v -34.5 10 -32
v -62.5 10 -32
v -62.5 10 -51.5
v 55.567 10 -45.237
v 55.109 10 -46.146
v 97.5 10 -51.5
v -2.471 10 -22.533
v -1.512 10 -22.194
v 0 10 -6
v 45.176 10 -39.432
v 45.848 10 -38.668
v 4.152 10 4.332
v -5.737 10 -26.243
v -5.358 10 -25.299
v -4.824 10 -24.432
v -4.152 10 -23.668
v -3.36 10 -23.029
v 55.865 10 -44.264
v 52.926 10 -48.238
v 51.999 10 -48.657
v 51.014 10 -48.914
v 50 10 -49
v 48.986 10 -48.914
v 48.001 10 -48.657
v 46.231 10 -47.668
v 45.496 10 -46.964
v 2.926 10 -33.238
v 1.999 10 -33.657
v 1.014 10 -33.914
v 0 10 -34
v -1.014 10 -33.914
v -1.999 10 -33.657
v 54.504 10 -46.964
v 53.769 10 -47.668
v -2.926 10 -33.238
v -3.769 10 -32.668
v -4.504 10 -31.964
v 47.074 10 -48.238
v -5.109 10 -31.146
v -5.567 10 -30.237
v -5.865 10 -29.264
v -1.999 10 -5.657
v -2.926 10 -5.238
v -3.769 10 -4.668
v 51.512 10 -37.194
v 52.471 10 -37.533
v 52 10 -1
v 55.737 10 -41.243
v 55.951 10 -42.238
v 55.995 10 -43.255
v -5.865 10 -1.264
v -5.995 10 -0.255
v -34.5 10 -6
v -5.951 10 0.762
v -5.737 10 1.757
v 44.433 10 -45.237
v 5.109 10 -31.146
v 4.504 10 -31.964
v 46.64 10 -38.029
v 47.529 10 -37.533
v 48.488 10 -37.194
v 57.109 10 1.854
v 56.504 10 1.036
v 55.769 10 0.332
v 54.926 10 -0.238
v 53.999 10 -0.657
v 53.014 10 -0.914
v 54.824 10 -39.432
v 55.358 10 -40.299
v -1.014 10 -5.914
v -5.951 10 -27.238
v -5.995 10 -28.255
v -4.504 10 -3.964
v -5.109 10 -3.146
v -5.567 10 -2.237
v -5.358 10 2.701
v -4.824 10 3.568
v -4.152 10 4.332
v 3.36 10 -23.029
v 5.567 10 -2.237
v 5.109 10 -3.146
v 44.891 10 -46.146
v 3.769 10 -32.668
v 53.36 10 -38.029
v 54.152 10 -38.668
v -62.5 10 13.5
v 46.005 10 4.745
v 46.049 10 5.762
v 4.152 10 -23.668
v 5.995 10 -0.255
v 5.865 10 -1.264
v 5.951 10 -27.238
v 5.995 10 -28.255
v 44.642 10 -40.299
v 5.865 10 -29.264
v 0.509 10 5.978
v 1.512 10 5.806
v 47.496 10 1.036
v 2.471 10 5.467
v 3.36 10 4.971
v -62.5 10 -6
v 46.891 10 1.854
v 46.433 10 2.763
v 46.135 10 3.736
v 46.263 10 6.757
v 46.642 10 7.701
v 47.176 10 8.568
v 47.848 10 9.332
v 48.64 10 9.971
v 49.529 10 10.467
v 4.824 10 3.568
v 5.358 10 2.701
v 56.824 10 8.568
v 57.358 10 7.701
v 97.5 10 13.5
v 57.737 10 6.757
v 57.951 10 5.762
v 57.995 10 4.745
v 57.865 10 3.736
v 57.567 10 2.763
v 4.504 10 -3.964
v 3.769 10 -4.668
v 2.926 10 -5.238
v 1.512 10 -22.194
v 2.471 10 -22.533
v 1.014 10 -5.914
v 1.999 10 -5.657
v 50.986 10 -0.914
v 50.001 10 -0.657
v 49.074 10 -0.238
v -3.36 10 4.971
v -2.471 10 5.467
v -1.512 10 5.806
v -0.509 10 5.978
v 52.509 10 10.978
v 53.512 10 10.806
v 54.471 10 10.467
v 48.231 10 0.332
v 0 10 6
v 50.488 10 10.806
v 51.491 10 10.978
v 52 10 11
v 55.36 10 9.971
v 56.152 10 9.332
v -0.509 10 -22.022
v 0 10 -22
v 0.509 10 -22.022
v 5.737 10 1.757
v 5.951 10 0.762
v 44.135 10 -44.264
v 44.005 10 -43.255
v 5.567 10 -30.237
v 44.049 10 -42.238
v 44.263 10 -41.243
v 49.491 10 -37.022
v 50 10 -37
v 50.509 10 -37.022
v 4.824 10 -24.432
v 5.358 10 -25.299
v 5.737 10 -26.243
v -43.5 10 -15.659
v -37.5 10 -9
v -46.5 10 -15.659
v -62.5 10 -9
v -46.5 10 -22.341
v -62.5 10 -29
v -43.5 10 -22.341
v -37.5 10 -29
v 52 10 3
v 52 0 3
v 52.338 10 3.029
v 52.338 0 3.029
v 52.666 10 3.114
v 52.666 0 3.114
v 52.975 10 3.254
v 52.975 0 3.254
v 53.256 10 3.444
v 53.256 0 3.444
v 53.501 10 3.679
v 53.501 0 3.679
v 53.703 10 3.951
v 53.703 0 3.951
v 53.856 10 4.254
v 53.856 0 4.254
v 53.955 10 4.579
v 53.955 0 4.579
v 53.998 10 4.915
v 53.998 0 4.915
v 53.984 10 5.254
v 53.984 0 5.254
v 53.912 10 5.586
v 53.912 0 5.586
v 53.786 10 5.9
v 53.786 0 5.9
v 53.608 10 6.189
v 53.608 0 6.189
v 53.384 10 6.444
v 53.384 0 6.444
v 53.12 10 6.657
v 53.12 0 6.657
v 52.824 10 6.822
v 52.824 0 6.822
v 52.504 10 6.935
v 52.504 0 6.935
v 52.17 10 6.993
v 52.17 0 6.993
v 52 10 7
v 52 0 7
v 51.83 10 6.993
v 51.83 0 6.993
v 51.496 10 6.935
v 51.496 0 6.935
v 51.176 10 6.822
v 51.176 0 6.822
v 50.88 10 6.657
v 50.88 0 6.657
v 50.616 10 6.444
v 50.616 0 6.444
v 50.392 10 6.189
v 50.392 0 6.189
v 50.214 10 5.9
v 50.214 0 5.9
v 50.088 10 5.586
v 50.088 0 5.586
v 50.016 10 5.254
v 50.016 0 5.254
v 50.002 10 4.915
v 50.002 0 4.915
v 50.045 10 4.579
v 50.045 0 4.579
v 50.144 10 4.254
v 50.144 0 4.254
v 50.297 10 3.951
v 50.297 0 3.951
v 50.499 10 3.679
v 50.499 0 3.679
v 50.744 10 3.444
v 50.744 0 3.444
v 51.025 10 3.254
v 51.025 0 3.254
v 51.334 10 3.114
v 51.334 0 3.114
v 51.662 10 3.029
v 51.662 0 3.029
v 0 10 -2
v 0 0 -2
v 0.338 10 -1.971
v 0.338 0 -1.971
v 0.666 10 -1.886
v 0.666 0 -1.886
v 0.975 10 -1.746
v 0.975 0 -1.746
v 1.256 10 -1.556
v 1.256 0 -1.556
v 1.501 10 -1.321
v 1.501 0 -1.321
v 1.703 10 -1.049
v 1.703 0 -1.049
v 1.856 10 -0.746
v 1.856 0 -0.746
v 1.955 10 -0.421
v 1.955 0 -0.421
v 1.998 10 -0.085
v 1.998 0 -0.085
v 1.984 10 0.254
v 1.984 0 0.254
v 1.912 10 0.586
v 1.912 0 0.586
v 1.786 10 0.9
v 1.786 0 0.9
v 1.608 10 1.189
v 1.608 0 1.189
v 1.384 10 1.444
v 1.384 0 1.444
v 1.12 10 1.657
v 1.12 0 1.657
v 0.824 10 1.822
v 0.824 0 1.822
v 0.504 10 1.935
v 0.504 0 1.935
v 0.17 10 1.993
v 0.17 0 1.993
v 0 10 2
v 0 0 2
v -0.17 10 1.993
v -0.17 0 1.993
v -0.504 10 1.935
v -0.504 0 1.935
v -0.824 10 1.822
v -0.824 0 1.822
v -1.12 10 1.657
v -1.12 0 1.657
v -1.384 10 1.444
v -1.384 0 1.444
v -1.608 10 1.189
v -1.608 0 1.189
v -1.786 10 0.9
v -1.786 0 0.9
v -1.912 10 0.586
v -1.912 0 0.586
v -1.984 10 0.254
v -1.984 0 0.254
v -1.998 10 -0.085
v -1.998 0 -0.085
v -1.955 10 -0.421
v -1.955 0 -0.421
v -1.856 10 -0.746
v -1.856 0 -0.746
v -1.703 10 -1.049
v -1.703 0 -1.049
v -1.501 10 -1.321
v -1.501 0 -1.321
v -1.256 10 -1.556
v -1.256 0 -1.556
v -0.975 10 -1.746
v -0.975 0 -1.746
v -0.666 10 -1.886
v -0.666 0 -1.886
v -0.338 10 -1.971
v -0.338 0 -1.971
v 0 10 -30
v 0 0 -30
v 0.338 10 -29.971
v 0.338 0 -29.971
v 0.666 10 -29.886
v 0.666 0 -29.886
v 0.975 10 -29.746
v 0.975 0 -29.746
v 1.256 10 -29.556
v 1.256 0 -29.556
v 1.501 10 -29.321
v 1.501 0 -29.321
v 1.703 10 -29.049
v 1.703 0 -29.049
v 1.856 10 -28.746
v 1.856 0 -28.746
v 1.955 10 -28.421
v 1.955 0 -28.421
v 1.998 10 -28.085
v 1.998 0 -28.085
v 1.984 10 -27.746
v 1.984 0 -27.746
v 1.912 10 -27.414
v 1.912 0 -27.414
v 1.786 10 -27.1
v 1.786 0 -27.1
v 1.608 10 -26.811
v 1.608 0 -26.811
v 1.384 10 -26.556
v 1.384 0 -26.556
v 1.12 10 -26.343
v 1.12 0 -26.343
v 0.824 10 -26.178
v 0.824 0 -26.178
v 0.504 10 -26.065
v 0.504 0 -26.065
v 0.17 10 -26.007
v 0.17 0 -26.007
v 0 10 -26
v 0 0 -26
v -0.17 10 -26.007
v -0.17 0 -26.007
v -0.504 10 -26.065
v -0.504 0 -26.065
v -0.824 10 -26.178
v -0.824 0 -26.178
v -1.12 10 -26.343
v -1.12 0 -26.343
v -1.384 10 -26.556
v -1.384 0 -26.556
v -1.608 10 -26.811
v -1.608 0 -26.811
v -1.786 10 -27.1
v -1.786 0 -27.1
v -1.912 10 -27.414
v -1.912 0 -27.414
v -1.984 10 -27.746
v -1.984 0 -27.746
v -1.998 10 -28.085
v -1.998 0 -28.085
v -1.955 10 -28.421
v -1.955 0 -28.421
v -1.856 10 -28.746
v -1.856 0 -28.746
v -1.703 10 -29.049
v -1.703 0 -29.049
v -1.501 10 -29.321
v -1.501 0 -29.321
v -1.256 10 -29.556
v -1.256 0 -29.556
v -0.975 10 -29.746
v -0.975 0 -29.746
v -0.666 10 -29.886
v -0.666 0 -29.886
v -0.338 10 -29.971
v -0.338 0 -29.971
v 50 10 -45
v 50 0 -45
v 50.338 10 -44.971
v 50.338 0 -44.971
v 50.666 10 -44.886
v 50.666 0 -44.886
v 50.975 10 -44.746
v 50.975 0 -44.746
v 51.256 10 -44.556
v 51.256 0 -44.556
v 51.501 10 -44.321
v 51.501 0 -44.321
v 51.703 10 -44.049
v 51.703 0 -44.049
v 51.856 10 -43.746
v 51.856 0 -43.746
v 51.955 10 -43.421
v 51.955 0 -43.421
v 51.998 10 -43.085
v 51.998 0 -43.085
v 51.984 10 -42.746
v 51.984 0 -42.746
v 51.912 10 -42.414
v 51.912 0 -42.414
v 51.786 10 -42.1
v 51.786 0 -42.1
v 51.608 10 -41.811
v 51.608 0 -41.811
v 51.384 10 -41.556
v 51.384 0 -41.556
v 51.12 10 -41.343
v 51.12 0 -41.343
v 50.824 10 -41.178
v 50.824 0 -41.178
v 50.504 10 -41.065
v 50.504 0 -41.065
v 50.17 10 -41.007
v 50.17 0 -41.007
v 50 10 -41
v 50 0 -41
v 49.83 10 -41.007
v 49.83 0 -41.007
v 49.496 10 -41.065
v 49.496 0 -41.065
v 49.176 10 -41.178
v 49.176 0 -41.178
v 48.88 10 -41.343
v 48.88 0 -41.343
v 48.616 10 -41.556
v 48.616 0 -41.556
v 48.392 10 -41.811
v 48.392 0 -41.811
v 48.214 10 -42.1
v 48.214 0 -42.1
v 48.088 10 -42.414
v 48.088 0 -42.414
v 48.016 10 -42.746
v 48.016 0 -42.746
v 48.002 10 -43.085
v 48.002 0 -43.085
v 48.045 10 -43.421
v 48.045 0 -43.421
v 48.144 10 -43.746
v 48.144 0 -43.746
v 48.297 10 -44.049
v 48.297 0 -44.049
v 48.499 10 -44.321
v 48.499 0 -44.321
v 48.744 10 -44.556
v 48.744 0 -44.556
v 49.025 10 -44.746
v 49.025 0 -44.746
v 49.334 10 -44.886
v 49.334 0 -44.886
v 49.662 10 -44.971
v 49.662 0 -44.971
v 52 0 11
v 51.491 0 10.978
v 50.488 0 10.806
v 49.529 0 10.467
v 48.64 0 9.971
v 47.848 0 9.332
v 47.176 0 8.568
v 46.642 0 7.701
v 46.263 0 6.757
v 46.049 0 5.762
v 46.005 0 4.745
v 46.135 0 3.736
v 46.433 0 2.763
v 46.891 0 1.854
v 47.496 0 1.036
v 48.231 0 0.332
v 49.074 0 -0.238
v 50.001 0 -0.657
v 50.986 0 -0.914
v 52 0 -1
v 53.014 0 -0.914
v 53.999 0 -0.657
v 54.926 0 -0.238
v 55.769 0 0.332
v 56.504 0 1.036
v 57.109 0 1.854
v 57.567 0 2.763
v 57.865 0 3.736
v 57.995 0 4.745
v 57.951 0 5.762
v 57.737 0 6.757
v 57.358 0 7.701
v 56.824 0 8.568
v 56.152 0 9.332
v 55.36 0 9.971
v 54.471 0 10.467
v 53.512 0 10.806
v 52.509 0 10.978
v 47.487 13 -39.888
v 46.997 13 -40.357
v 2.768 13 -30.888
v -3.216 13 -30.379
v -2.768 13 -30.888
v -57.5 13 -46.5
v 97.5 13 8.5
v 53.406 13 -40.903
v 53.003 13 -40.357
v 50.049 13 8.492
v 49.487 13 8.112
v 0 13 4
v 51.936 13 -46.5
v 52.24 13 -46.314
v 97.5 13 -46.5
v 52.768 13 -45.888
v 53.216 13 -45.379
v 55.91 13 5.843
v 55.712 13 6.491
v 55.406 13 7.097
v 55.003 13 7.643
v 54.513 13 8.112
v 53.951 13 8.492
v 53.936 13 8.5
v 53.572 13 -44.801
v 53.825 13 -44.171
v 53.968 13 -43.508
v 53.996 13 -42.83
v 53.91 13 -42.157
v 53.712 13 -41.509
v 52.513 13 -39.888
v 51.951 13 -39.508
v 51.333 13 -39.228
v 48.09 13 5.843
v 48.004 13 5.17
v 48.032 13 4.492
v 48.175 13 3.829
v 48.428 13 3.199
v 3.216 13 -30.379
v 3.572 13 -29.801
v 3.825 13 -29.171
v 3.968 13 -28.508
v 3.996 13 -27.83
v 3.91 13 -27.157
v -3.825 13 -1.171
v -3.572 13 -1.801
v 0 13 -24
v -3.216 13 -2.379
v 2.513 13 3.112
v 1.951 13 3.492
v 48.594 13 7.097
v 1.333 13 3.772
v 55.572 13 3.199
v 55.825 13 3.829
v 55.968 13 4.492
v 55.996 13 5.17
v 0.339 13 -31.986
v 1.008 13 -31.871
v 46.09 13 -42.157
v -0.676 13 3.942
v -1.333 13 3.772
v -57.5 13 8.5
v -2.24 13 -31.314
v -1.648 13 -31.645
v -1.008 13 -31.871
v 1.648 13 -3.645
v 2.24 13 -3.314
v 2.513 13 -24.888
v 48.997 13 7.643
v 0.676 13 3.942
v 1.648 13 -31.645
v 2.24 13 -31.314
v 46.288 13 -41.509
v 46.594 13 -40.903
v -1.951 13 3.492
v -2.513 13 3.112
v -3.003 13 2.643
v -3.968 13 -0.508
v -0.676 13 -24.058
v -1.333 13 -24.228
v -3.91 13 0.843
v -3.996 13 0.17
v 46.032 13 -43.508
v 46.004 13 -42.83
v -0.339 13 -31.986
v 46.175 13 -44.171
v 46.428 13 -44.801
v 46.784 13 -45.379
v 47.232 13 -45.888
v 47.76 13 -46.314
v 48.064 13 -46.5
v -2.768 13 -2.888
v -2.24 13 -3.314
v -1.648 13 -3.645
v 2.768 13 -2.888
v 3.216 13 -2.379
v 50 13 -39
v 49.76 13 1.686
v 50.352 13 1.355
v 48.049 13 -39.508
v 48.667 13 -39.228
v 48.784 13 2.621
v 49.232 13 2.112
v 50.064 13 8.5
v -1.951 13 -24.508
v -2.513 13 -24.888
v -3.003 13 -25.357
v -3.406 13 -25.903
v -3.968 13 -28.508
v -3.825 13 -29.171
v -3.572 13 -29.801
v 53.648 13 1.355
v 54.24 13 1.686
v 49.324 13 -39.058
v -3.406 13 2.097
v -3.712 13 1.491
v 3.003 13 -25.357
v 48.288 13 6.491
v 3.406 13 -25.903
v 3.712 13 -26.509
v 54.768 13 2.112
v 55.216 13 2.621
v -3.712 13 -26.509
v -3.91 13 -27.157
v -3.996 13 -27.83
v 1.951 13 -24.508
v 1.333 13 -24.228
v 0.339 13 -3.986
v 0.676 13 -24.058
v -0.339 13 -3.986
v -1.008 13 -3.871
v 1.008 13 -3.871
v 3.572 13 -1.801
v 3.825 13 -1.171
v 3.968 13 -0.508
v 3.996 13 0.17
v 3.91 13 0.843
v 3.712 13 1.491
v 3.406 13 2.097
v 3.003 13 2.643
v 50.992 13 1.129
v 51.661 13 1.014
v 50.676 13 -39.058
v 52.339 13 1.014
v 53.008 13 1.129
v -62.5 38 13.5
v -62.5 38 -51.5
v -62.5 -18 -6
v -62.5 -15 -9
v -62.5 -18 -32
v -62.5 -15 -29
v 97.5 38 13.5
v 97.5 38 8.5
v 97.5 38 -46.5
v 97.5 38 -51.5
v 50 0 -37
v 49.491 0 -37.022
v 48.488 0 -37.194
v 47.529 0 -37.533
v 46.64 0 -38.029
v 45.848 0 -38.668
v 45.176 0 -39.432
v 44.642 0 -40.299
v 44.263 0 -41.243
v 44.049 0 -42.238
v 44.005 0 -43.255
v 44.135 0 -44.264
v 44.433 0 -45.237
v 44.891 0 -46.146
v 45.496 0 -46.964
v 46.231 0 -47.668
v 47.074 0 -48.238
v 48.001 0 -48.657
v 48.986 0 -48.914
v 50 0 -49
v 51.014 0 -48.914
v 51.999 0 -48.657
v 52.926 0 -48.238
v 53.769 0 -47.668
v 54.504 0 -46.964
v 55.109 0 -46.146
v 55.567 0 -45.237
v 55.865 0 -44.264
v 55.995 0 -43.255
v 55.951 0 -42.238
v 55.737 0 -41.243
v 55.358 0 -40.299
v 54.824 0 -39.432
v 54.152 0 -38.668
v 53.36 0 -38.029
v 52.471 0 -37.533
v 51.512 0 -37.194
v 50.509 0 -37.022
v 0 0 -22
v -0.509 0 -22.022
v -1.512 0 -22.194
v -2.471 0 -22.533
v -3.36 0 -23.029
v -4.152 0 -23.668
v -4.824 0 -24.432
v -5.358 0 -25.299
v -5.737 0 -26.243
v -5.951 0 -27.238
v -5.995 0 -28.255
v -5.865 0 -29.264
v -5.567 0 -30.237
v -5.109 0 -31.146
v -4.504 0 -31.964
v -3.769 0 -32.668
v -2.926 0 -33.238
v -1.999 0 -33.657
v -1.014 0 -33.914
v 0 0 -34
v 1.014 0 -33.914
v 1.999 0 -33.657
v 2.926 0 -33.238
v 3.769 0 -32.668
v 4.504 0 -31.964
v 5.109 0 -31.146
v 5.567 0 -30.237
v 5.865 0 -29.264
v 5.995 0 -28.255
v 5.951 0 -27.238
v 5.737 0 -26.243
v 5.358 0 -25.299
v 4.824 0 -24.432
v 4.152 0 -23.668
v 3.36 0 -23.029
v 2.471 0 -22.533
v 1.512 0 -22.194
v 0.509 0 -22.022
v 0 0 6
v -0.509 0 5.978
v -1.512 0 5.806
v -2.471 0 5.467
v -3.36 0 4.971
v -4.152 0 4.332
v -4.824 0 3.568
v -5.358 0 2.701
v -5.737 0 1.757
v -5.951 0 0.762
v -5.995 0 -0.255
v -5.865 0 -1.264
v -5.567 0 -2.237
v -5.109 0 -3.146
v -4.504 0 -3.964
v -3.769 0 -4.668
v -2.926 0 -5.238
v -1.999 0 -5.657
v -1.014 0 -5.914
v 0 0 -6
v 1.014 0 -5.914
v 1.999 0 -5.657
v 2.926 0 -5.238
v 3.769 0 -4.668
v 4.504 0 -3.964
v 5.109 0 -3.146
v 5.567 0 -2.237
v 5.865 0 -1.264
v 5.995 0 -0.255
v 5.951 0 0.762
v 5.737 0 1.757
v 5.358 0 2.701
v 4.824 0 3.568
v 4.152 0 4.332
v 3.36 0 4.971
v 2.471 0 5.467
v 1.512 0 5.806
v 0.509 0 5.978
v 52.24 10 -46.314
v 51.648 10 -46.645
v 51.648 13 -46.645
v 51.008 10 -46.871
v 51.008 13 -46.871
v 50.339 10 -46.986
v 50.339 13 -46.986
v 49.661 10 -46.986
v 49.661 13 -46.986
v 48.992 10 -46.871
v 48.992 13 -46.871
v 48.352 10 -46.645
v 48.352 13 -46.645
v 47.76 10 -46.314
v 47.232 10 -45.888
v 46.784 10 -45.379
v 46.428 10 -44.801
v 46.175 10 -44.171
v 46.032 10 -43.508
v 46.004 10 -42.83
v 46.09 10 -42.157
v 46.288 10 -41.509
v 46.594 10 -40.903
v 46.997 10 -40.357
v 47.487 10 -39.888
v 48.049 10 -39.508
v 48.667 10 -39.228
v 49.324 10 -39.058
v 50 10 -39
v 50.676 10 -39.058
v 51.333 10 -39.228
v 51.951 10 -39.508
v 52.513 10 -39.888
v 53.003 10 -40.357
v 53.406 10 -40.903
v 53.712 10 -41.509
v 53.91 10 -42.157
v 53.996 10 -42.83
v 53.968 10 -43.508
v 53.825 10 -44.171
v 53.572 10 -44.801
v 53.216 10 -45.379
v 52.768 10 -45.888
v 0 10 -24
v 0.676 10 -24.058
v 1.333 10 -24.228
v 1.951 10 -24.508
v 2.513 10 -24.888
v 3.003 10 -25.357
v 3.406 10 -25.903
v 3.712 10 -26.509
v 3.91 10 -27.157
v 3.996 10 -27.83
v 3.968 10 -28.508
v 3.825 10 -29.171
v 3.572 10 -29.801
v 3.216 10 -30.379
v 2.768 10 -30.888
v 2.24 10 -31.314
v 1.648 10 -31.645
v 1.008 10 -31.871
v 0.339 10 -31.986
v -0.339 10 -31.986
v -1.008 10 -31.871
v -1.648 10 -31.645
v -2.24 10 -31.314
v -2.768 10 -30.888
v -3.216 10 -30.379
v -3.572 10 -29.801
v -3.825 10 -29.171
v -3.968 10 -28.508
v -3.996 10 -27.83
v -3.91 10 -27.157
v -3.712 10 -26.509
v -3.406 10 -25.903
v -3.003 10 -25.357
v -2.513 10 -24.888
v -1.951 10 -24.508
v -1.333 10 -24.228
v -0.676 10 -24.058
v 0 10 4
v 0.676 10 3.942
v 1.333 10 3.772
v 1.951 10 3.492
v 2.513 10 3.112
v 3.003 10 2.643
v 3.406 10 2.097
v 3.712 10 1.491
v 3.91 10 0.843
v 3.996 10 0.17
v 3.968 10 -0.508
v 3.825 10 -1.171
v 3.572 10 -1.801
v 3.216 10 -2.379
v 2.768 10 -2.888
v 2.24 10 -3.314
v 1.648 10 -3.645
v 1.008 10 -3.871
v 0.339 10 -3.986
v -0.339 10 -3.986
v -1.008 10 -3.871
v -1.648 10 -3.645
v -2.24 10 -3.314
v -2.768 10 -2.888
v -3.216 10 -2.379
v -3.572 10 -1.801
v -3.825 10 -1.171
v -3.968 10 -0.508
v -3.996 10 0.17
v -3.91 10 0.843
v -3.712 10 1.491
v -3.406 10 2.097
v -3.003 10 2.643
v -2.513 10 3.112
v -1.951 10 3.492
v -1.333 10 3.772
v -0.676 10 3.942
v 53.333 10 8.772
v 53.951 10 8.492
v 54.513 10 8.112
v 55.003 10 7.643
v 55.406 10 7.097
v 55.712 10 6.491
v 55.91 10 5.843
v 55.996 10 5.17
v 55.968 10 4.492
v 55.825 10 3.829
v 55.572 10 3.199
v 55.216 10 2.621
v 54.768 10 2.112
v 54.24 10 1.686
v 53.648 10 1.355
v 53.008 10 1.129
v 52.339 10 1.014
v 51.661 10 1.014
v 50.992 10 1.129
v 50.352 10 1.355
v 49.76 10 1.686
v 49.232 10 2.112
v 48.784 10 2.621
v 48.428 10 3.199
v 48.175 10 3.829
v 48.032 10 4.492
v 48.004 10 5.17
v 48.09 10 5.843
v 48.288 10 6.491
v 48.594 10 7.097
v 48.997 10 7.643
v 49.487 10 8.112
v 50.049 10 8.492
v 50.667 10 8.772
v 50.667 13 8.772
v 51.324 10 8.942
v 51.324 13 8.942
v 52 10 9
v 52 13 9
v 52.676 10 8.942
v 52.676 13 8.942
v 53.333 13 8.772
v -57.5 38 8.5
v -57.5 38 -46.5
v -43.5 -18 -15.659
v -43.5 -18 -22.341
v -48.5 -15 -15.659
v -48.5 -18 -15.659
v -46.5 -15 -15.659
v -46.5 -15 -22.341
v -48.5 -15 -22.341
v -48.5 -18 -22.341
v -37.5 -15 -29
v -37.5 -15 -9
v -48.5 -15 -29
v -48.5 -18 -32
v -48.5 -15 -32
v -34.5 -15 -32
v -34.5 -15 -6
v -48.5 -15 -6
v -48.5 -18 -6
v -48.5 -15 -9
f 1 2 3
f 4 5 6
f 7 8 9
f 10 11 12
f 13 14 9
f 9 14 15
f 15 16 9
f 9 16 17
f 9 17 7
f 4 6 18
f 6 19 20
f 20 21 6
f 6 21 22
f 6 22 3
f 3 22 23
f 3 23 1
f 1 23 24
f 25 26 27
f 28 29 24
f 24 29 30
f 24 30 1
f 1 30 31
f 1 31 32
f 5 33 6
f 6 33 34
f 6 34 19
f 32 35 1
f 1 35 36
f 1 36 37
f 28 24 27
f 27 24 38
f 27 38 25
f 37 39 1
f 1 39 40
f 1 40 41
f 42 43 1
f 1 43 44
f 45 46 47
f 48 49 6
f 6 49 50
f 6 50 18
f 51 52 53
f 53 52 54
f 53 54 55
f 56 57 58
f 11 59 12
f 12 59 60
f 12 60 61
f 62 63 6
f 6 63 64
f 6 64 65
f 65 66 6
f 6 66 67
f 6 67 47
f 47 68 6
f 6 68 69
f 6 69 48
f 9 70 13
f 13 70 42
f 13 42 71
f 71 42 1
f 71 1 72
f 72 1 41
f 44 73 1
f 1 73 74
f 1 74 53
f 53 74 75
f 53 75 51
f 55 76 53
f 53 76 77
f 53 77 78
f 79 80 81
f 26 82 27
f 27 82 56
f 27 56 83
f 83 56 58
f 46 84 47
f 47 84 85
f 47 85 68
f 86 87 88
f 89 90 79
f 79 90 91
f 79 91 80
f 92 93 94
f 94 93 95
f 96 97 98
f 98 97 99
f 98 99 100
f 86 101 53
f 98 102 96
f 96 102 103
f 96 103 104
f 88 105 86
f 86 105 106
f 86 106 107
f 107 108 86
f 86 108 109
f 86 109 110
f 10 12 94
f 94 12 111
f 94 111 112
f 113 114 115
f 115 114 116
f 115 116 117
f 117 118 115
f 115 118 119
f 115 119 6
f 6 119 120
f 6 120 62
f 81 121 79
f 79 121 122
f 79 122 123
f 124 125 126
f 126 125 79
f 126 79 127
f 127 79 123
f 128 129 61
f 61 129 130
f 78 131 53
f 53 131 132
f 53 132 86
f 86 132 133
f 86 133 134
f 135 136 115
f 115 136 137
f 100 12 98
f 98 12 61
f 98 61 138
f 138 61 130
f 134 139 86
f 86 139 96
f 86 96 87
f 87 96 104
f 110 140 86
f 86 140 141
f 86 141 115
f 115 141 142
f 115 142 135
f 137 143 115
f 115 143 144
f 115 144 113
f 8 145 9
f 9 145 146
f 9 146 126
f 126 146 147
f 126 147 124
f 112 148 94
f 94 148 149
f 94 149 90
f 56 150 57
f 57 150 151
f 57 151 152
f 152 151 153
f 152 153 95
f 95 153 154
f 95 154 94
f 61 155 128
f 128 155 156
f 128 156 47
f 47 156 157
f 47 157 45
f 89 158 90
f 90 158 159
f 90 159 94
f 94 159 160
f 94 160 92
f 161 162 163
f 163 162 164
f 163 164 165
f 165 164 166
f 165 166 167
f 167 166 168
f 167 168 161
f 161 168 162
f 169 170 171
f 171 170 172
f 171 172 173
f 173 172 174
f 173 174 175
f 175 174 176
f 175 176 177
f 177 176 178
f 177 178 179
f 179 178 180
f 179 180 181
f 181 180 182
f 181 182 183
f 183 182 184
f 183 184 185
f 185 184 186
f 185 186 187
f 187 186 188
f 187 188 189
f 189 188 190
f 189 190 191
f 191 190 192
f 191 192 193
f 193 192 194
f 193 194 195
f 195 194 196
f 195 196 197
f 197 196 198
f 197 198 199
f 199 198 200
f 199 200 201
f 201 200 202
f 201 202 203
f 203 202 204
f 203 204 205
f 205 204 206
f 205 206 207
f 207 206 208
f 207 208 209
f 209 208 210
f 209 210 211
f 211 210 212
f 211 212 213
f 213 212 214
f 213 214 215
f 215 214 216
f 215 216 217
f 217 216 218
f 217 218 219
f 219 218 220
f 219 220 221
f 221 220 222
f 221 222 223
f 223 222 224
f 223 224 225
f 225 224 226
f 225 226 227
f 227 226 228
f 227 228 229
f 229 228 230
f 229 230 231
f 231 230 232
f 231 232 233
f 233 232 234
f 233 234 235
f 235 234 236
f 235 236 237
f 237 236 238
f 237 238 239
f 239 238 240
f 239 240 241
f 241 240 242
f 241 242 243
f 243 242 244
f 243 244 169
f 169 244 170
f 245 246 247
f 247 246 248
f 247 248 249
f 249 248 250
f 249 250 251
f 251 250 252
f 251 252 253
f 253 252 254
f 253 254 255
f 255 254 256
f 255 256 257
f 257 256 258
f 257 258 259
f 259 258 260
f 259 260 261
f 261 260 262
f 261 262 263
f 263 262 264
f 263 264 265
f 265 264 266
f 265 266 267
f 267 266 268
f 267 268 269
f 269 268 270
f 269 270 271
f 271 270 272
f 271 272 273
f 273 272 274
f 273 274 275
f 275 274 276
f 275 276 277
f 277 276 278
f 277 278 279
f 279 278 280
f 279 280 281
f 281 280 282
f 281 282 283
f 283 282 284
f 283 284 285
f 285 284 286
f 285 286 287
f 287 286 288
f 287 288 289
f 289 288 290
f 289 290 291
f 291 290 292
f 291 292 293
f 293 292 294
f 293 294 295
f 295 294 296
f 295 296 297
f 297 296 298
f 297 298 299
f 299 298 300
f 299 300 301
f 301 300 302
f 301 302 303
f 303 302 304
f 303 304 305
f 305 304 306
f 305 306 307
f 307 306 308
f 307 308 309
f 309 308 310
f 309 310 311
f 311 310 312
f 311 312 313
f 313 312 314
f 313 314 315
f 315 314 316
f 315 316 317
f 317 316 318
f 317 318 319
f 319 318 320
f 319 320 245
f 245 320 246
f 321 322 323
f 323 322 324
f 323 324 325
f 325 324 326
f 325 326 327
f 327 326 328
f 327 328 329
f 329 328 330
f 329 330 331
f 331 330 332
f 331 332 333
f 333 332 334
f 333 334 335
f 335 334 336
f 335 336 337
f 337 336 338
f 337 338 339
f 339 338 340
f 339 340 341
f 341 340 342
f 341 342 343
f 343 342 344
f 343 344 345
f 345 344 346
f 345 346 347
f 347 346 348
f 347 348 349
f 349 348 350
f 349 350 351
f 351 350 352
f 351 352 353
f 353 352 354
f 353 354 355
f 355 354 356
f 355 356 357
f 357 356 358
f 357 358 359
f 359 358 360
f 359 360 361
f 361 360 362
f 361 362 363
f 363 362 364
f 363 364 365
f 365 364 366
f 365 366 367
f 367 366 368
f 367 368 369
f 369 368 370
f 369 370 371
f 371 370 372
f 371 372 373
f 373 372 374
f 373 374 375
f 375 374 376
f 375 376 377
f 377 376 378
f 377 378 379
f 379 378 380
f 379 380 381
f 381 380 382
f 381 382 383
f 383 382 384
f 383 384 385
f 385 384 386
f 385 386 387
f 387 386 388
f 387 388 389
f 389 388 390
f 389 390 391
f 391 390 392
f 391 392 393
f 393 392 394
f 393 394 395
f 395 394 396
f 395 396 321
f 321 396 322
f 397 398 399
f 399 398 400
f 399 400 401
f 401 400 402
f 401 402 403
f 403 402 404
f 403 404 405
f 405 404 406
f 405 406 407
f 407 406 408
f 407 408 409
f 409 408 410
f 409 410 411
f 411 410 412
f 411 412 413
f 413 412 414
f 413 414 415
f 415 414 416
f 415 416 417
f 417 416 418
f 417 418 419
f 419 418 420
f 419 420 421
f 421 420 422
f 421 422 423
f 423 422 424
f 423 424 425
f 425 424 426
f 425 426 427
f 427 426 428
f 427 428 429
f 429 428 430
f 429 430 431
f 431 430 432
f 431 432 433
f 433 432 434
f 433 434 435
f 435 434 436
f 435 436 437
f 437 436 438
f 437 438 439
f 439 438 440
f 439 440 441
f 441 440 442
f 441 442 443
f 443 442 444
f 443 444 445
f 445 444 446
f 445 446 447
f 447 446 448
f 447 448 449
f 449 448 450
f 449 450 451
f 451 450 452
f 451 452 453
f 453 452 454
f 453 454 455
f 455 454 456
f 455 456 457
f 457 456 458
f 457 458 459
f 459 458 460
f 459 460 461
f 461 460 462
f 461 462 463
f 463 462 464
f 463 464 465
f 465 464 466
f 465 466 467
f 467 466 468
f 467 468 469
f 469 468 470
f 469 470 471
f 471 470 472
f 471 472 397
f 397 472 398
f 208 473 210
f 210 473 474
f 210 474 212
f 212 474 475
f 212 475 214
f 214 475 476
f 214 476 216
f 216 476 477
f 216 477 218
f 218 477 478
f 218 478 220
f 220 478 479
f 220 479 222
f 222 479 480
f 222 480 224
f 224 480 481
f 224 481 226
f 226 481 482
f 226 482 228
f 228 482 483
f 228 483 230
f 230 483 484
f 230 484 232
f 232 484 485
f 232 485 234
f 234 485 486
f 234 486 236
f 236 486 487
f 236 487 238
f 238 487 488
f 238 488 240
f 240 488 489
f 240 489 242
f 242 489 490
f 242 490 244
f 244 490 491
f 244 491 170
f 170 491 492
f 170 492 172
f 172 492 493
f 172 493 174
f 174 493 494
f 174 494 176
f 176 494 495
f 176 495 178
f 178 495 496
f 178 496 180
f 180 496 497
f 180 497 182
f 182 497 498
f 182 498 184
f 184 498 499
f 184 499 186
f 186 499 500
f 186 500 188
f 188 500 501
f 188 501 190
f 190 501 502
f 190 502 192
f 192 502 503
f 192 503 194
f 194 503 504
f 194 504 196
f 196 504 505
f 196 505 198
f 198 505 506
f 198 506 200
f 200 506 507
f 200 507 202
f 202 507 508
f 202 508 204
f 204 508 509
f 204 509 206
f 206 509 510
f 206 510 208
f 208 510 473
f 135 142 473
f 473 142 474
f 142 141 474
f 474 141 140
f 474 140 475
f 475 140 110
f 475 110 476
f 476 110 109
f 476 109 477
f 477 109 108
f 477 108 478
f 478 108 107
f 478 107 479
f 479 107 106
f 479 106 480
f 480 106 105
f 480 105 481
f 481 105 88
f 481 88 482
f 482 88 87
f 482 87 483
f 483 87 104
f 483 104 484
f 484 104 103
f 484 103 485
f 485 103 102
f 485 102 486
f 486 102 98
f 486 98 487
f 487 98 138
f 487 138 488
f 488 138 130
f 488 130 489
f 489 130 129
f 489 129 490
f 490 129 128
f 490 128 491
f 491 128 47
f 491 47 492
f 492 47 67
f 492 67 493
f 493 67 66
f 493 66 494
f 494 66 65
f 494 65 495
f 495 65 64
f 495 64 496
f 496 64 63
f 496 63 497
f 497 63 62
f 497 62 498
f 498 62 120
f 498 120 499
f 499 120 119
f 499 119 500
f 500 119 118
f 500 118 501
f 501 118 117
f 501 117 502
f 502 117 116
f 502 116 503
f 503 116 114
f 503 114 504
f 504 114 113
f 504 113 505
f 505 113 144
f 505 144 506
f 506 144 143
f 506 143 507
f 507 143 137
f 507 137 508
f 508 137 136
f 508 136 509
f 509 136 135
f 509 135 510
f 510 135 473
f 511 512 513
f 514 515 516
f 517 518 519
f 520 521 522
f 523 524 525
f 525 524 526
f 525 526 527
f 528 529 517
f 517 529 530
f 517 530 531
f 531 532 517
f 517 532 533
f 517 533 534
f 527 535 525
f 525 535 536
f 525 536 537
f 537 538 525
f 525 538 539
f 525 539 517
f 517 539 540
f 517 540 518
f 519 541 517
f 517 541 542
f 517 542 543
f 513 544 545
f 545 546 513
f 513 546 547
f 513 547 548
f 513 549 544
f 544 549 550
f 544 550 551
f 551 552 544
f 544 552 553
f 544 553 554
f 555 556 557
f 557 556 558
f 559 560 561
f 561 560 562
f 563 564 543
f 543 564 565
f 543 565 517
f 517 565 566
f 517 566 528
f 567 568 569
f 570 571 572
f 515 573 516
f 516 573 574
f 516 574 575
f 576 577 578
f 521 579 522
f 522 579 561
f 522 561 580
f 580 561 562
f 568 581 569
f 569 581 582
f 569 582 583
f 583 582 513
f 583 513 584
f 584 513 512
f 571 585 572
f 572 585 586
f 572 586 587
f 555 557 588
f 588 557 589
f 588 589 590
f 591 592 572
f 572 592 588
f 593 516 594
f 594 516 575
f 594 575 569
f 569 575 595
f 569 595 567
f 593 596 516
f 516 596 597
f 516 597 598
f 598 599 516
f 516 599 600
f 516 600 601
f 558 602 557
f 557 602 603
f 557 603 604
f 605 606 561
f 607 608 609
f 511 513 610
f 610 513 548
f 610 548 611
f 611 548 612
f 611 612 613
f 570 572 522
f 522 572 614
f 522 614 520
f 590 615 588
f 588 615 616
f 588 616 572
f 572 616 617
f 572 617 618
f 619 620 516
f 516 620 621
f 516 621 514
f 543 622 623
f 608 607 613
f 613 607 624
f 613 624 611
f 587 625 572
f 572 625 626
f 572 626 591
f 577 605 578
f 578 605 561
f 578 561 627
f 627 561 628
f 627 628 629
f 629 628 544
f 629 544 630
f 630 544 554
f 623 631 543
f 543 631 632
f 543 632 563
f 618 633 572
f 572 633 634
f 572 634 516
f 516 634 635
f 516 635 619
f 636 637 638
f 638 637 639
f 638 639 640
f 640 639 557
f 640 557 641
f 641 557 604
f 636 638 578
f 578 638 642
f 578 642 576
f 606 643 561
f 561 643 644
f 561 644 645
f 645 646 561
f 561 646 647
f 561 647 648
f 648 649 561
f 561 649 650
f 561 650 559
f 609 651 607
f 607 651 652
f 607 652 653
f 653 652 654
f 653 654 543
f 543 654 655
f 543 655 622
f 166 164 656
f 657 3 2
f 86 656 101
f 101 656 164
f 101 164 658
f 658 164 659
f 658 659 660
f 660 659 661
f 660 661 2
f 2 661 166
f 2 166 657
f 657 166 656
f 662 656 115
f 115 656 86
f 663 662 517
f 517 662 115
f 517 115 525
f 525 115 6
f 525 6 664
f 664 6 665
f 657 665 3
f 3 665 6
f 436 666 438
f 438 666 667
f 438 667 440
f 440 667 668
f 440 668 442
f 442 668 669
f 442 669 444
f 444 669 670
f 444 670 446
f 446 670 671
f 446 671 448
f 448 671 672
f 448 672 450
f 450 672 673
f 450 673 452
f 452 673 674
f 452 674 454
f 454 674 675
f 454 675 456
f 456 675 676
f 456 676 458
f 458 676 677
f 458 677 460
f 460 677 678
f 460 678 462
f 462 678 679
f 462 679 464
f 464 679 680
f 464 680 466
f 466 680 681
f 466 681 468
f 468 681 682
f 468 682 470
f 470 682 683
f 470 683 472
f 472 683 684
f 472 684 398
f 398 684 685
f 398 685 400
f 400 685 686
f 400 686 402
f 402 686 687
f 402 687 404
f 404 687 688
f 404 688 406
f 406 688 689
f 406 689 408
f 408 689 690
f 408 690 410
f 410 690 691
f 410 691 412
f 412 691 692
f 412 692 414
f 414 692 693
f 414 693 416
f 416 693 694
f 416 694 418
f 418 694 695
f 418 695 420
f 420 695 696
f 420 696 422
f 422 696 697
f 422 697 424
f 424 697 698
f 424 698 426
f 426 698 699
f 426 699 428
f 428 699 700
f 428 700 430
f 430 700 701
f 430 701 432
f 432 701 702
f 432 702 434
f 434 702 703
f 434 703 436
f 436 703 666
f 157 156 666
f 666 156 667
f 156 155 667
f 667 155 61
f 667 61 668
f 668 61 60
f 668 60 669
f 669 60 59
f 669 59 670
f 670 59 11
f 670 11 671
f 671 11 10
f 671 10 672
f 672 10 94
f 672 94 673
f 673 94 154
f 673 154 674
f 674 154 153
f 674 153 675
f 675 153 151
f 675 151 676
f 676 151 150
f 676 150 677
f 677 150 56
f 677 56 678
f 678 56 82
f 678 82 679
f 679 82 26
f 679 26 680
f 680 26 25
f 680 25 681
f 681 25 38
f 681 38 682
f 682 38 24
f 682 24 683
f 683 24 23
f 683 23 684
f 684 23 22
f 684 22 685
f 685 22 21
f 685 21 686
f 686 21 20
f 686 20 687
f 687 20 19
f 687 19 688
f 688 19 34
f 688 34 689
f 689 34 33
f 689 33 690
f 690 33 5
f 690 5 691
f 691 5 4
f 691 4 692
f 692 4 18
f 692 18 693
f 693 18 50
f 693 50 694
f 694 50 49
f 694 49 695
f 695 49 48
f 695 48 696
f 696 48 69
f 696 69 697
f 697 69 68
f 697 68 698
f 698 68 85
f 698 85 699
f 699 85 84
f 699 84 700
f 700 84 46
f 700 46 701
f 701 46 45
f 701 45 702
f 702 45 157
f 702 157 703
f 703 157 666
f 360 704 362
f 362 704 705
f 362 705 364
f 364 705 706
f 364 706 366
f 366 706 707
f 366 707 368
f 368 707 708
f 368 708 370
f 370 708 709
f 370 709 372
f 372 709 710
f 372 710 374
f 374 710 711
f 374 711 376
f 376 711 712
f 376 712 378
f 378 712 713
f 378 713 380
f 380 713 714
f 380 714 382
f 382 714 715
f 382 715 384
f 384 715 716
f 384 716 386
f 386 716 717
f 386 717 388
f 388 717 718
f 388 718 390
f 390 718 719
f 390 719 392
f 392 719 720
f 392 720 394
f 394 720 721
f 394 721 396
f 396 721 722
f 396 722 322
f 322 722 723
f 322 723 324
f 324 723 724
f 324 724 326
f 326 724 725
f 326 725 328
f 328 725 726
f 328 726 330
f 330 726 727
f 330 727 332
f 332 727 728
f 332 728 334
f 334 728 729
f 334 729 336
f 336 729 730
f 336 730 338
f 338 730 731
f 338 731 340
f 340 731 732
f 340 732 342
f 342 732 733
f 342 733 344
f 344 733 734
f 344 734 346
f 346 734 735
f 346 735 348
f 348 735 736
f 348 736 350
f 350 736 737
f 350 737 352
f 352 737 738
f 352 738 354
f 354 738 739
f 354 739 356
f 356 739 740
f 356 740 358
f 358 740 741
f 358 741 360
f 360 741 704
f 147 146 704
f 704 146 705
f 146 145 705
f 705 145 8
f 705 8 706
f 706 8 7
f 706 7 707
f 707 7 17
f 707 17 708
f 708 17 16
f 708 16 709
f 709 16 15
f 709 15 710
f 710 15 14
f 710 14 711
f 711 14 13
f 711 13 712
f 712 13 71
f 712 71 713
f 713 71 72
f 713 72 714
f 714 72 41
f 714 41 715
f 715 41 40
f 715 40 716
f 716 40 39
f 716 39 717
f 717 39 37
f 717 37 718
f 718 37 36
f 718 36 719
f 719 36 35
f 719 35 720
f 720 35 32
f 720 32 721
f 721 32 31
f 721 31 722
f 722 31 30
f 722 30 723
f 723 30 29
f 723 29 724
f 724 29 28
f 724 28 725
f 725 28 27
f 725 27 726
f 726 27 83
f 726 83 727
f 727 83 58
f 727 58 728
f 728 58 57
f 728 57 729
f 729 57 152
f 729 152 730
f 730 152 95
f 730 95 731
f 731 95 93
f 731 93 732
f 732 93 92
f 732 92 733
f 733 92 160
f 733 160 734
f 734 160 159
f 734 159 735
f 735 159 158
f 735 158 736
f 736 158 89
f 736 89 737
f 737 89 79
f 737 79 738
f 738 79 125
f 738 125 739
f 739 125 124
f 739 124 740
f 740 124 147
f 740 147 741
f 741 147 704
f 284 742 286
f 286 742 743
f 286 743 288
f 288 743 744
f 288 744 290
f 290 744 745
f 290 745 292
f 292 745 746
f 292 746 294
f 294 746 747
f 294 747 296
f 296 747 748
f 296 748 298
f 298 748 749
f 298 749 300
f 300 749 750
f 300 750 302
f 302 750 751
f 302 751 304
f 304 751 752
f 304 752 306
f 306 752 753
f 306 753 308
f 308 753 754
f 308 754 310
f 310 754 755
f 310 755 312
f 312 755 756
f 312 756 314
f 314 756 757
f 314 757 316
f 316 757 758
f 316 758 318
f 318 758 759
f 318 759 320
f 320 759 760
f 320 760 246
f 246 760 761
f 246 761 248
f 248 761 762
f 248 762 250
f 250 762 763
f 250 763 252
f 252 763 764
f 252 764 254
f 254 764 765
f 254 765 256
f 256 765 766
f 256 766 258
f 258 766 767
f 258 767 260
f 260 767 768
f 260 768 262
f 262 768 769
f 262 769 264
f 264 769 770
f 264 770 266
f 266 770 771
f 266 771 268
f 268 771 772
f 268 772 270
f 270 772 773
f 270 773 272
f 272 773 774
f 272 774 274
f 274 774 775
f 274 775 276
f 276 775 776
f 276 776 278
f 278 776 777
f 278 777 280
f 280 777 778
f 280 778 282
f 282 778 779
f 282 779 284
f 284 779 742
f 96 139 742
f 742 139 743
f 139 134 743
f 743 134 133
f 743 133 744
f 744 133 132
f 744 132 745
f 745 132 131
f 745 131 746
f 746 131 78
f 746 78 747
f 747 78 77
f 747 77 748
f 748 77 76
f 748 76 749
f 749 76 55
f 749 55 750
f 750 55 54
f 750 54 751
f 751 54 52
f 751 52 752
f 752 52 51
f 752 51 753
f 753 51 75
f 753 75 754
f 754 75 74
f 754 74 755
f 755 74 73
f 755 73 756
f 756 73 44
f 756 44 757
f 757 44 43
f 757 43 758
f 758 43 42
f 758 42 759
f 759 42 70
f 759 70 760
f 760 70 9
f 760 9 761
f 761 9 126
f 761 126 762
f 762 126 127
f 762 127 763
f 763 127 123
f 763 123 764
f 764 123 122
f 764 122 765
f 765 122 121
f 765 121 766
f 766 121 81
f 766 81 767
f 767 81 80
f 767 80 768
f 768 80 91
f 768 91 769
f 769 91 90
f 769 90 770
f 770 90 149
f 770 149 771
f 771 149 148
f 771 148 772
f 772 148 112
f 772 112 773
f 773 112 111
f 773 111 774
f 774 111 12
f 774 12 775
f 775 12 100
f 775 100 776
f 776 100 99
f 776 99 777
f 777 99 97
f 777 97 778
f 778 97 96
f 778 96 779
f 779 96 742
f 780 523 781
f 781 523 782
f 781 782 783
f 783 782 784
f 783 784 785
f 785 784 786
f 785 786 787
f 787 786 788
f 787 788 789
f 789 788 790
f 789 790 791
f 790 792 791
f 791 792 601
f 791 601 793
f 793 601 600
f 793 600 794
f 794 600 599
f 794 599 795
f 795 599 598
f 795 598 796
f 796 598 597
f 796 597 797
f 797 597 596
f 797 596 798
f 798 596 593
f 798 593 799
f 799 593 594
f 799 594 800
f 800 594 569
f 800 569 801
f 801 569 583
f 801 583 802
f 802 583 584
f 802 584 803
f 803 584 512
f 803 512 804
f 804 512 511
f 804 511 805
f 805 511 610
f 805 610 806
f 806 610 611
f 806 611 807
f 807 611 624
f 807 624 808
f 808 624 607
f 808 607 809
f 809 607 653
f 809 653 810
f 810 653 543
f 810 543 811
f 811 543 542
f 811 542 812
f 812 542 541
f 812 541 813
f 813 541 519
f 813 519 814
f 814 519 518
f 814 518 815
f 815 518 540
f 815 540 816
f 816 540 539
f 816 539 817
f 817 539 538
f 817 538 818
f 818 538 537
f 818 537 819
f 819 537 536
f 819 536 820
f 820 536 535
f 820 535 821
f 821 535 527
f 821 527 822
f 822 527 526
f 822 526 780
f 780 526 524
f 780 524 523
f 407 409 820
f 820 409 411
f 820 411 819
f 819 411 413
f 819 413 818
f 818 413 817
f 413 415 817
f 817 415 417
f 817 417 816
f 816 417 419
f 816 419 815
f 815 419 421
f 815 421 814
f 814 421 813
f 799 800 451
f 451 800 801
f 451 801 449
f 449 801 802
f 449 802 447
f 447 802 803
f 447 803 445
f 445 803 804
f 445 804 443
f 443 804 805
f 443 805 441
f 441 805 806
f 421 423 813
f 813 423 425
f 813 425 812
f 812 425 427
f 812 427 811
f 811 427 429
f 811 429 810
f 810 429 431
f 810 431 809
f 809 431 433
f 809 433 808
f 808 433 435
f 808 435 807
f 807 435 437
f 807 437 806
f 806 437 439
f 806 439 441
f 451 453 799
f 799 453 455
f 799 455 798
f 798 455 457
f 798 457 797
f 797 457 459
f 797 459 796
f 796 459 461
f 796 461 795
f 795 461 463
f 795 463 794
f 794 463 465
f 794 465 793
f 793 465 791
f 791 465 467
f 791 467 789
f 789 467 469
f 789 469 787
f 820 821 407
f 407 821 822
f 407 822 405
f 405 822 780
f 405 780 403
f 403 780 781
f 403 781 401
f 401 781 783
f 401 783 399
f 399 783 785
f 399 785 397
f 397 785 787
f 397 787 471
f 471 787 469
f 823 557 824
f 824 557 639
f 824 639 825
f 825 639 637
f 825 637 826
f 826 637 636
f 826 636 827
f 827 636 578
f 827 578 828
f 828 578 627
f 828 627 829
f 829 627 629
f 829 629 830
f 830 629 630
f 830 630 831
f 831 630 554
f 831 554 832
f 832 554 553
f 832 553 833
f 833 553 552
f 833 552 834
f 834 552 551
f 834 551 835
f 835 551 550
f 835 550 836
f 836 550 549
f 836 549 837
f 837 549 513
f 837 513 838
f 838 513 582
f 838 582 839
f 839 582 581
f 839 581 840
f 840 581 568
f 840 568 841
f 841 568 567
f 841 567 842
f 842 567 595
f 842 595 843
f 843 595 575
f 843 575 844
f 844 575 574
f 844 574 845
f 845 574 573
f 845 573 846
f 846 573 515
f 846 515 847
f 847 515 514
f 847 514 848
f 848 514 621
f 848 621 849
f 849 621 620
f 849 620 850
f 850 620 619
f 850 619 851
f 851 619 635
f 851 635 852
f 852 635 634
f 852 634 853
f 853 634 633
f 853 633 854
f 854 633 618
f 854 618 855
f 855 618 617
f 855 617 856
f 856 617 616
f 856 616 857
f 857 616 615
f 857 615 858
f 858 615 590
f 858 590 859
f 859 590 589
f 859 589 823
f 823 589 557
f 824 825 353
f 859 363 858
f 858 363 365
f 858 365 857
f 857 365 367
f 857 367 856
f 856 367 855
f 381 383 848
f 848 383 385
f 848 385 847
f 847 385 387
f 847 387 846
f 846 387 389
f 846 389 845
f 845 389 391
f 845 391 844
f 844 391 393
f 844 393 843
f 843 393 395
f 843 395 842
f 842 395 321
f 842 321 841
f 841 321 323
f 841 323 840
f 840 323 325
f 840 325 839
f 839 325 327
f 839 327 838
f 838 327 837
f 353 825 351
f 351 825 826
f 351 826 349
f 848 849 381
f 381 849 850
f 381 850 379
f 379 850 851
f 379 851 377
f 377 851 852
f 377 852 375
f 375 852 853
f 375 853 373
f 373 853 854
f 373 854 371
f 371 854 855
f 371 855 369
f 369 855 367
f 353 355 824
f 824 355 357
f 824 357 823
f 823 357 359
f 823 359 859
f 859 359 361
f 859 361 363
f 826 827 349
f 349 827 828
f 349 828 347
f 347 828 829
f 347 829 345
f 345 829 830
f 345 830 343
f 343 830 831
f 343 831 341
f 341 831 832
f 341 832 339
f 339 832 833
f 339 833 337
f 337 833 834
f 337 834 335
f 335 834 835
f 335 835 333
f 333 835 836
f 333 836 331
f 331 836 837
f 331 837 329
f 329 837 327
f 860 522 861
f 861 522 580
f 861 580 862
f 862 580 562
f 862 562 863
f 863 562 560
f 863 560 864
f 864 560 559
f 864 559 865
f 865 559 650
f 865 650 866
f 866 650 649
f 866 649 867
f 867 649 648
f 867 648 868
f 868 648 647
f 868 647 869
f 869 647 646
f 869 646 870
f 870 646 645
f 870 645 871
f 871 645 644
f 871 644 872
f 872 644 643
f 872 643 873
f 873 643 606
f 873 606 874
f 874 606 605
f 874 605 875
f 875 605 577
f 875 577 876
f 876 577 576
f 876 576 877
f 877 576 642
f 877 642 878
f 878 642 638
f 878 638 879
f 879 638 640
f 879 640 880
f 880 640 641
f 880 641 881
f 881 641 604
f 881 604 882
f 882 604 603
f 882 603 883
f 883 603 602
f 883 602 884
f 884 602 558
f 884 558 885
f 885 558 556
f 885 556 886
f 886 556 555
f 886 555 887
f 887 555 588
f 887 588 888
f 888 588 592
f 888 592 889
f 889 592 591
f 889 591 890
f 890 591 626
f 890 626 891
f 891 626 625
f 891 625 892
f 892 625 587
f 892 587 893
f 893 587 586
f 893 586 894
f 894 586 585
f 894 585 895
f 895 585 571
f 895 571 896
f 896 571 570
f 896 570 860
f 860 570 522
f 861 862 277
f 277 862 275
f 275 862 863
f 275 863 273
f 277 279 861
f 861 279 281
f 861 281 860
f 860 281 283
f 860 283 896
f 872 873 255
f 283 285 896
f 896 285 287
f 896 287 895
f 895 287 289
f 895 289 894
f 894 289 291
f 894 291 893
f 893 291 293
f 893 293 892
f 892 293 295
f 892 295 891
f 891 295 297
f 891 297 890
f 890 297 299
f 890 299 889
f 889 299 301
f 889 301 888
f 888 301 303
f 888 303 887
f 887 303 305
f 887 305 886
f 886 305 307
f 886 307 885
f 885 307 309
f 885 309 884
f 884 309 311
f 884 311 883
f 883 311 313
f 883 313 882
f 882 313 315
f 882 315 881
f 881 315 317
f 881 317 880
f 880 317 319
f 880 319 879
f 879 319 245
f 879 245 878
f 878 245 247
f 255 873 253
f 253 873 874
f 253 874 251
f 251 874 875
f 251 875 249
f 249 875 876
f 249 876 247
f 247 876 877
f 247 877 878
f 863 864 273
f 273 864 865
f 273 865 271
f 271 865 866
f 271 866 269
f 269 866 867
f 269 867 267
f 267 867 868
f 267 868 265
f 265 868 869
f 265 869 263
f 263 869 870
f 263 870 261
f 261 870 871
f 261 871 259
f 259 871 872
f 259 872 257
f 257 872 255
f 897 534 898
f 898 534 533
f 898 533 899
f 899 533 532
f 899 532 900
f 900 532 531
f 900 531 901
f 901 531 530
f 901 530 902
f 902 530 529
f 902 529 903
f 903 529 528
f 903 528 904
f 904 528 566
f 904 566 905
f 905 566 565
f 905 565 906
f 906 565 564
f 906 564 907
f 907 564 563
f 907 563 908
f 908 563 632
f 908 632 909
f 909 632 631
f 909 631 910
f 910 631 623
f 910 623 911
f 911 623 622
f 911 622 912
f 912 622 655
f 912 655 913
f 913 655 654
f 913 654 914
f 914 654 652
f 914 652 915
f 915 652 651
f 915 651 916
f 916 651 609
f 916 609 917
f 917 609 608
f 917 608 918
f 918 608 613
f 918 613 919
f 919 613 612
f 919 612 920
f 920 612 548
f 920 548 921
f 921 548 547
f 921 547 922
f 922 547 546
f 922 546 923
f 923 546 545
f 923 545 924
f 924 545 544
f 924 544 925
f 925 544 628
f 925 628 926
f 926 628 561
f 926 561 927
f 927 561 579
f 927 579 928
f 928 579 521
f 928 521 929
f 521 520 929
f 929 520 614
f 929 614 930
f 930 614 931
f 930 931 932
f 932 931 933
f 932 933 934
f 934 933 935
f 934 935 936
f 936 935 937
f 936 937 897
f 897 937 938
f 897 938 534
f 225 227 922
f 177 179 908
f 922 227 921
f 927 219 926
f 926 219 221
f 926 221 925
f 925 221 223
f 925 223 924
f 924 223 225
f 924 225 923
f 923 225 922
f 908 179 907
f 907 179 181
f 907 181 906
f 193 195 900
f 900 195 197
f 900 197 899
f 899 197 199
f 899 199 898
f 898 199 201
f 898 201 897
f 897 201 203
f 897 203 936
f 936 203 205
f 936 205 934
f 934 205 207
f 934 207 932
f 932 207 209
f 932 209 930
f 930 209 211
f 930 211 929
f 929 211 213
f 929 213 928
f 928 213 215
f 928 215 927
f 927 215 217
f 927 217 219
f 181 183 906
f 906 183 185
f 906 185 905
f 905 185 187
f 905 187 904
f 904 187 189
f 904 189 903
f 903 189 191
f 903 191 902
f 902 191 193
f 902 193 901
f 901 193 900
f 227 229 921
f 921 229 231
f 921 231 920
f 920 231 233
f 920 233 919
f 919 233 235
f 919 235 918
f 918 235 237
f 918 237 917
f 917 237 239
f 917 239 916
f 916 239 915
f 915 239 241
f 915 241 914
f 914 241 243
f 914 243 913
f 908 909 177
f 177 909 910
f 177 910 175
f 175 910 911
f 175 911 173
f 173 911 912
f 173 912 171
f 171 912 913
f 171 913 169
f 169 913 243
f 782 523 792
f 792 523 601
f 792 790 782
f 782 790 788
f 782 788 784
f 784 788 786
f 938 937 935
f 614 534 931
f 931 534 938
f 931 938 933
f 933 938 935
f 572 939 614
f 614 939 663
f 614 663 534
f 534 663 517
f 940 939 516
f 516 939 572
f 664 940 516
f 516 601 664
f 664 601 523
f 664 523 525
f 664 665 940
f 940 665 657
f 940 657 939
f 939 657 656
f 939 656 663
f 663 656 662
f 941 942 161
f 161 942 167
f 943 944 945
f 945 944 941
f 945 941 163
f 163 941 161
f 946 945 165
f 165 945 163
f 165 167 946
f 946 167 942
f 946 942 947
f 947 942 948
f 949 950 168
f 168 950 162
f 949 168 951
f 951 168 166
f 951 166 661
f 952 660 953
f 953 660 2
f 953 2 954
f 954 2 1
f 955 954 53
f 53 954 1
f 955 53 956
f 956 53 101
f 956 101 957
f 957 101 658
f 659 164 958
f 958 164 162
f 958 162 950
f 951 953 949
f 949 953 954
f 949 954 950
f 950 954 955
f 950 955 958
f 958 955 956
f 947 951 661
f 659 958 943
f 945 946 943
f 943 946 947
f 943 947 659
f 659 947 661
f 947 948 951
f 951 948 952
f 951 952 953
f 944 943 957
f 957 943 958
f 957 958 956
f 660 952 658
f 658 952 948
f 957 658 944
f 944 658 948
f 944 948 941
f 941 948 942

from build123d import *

# Parameters (mm, degrees)
SKETCH1_R                                = 6
SKETCH1_R_2                              = 2
ARDUINO_OFFSET_PINS_DEPTH                = 10
ARDUINO_OFFSET_PINS_2_DEPTH              = 10
ARDUINO_OFFSET_PINS_3_DEPTH              = 10
ARDUINO_OFFSET_PINS_4_DEPTH              = 10
SKETCH2_W                                = 160
SKETCH2_H                                = 65
SKETCH2_R                                = 2
BATTERY_HOLDER_BASE_DEPTH                = 3
SKETCH3_R                                = 4
BATTERY_HOLDER_ARDUINO_COUNTERSINK_DEPTH = 3
BATTERYHOLDER_WALLS_DEPTH                = 25
SEEED_HOLDER_WALLS_DEPTH                 = 25
SEEED_HOLDER_CAP_DEPTH                   = 3


with BuildPart() as part:
    # Sketch1 → Arduino Offset Pins (new body)
    with BuildSketch(Plane(origin=(0, 0, 0), x_dir=(1, 0, 0), z_dir=(0, 1, 0))):
        with Locations(Location((0, 28, 0), (0, 0, 270))):
            Circle(SKETCH1_R)
        with Locations(Location((0, 28, 0), (0, 0, 270))):
            Circle(SKETCH1_R_2, mode=Mode.SUBTRACT)
    extrude(amount=ARDUINO_OFFSET_PINS_DEPTH)



with BuildPart() as body_2:
    # Sketch1 → Arduino Offset Pins 2 (new body)
    with BuildSketch(Plane(origin=(0, 0, 0), x_dir=(1, 0, 0), z_dir=(0, 1, 0))):
        with Locations(Location((0, 0, 0), (0, 0, 270))):
            Circle(SKETCH1_R)
        with Locations(Location((0, 0, 0), (0, 0, 270))):
            Circle(SKETCH1_R_2, mode=Mode.SUBTRACT)
    extrude(amount=ARDUINO_OFFSET_PINS_2_DEPTH)


with BuildPart() as body_3:
    # Sketch1 → Arduino Offset Pins 3 (new body)
    with BuildSketch(Plane(origin=(0, 0, 0), x_dir=(1, 0, 0), z_dir=(0, 1, 0))):
        with Locations(Location((52, -5, 0), (0, 0, 270))):
            Circle(SKETCH1_R)
        with Locations(Location((52, -5, 0), (0, 0, 270))):
            Circle(SKETCH1_R_2, mode=Mode.SUBTRACT)
    extrude(amount=ARDUINO_OFFSET_PINS_3_DEPTH)


with BuildPart() as body_4:
    # Sketch1 → Arduino Offset Pins 4 (new body)
    with BuildSketch(Plane(origin=(0, 0, 0), x_dir=(1, 0, 0), z_dir=(0, 1, 0))):
        with Locations(Location((50, 43, 0), (0, 0, 270))):
            Circle(SKETCH1_R)
        with Locations(Location((50, 43, 0), (0, 0, 270))):
            Circle(SKETCH1_R_2, mode=Mode.SUBTRACT)
    extrude(amount=ARDUINO_OFFSET_PINS_4_DEPTH)


with BuildPart() as part_1:
    add(part.part)

    add(body_2.part)  # battery holder base merges body 2

    add(body_3.part)  # battery holder base merges body 3

    add(body_4.part)  # battery holder base merges body 4
    # Sketch2 → battery holder base (add)
    with BuildSketch(Plane(origin=(0, 10, 0), x_dir=(1, 0, 0), z_dir=(0, 1, 0))):
        with Locations((17.5, 19)):
            Rectangle(SKETCH2_W, SKETCH2_H)
        with Locations(Location((0, 0, 0), (0, 0, 270))):
            Circle(SKETCH2_R, mode=Mode.SUBTRACT)
        with Locations(Location((0, 28, 0), (0, 0, 270))):
            Circle(SKETCH2_R, mode=Mode.SUBTRACT)
        with Locations(Location((50, 43, 0), (0, 0, 270))):
            Circle(SKETCH2_R, mode=Mode.SUBTRACT)
        with Locations(Location((52, -5, 0), (0, 0, 270))):
            Circle(SKETCH2_R, mode=Mode.SUBTRACT)
    extrude(amount=BATTERY_HOLDER_BASE_DEPTH)

    # Sketch3 → Battery Holder Arduino Countersink (cut)
    with BuildSketch(Plane(origin=(0, 13, 0), x_dir=(1, 0, 0), z_dir=(0, 1, 0))):
        with Locations(Location((0, 0, 0), (0, 0, 270))):
            Circle(SKETCH3_R)
        with Locations(Location((0, 28, 0), (0, 0, 270))):
            Circle(SKETCH3_R)
        with Locations(Location((52, -5, 0), (0, 0, 270))):
            Circle(SKETCH3_R)
        with Locations(Location((50, 43, 0), (0, 0, 270))):
            Circle(SKETCH3_R)
    extrude(amount=-BATTERY_HOLDER_ARDUINO_COUNTERSINK_DEPTH, mode=Mode.SUBTRACT)

    # Sketch4 → BatteryHolder Walls (add)
    with BuildSketch(Plane(origin=(0, 13, 0), x_dir=(1, 0, 0), z_dir=(0, 1, 0))):
        Polygon((-62.5, -13.5), (97.5, -13.5), (97.5, -8.5), (-57.5, -8.5), (-57.5, 46.5), (97.5, 46.5), (97.5, 51.5), (-62.5, 51.5), (-62.5, 46.5), (-62.5, -8.5), align=None)
    extrude(amount=BATTERYHOLDER_WALLS_DEPTH)

    # Sketch6 → SEEED holder walls (add)
    with BuildSketch(Plane.XZ.offset(-10)):
        Polygon((-34.5, -32), (-34.5, -6), (-62.5, -6), (-62.5, -9), (-37.5, -9), (-37.5, -29), (-62.5, -29), (-62.5, -32), align=None)
        Polygon((-43.5, -19), (-43.5, -15.658875471), (-46.5, -15.658875471), (-46.5, -19), (-46.5, -22.341124529), (-43.5, -22.341124529), align=None)
    extrude(amount=SEEED_HOLDER_WALLS_DEPTH)

    # Sketch7 → Seeed holder cap (add)
    with BuildSketch(Plane.XZ.offset(15)):
        Polygon((-48.5, -15.658875471), (-48.5, -6), (-62.5, -6), (-62.5, -32), (-48.5, -32), (-48.5, -22.341124529), (-43.5, -22.341124529), (-43.5, -15.658875471), align=None)
    extrude(amount=SEEED_HOLDER_CAP_DEPTH)


solid = part_1.part
